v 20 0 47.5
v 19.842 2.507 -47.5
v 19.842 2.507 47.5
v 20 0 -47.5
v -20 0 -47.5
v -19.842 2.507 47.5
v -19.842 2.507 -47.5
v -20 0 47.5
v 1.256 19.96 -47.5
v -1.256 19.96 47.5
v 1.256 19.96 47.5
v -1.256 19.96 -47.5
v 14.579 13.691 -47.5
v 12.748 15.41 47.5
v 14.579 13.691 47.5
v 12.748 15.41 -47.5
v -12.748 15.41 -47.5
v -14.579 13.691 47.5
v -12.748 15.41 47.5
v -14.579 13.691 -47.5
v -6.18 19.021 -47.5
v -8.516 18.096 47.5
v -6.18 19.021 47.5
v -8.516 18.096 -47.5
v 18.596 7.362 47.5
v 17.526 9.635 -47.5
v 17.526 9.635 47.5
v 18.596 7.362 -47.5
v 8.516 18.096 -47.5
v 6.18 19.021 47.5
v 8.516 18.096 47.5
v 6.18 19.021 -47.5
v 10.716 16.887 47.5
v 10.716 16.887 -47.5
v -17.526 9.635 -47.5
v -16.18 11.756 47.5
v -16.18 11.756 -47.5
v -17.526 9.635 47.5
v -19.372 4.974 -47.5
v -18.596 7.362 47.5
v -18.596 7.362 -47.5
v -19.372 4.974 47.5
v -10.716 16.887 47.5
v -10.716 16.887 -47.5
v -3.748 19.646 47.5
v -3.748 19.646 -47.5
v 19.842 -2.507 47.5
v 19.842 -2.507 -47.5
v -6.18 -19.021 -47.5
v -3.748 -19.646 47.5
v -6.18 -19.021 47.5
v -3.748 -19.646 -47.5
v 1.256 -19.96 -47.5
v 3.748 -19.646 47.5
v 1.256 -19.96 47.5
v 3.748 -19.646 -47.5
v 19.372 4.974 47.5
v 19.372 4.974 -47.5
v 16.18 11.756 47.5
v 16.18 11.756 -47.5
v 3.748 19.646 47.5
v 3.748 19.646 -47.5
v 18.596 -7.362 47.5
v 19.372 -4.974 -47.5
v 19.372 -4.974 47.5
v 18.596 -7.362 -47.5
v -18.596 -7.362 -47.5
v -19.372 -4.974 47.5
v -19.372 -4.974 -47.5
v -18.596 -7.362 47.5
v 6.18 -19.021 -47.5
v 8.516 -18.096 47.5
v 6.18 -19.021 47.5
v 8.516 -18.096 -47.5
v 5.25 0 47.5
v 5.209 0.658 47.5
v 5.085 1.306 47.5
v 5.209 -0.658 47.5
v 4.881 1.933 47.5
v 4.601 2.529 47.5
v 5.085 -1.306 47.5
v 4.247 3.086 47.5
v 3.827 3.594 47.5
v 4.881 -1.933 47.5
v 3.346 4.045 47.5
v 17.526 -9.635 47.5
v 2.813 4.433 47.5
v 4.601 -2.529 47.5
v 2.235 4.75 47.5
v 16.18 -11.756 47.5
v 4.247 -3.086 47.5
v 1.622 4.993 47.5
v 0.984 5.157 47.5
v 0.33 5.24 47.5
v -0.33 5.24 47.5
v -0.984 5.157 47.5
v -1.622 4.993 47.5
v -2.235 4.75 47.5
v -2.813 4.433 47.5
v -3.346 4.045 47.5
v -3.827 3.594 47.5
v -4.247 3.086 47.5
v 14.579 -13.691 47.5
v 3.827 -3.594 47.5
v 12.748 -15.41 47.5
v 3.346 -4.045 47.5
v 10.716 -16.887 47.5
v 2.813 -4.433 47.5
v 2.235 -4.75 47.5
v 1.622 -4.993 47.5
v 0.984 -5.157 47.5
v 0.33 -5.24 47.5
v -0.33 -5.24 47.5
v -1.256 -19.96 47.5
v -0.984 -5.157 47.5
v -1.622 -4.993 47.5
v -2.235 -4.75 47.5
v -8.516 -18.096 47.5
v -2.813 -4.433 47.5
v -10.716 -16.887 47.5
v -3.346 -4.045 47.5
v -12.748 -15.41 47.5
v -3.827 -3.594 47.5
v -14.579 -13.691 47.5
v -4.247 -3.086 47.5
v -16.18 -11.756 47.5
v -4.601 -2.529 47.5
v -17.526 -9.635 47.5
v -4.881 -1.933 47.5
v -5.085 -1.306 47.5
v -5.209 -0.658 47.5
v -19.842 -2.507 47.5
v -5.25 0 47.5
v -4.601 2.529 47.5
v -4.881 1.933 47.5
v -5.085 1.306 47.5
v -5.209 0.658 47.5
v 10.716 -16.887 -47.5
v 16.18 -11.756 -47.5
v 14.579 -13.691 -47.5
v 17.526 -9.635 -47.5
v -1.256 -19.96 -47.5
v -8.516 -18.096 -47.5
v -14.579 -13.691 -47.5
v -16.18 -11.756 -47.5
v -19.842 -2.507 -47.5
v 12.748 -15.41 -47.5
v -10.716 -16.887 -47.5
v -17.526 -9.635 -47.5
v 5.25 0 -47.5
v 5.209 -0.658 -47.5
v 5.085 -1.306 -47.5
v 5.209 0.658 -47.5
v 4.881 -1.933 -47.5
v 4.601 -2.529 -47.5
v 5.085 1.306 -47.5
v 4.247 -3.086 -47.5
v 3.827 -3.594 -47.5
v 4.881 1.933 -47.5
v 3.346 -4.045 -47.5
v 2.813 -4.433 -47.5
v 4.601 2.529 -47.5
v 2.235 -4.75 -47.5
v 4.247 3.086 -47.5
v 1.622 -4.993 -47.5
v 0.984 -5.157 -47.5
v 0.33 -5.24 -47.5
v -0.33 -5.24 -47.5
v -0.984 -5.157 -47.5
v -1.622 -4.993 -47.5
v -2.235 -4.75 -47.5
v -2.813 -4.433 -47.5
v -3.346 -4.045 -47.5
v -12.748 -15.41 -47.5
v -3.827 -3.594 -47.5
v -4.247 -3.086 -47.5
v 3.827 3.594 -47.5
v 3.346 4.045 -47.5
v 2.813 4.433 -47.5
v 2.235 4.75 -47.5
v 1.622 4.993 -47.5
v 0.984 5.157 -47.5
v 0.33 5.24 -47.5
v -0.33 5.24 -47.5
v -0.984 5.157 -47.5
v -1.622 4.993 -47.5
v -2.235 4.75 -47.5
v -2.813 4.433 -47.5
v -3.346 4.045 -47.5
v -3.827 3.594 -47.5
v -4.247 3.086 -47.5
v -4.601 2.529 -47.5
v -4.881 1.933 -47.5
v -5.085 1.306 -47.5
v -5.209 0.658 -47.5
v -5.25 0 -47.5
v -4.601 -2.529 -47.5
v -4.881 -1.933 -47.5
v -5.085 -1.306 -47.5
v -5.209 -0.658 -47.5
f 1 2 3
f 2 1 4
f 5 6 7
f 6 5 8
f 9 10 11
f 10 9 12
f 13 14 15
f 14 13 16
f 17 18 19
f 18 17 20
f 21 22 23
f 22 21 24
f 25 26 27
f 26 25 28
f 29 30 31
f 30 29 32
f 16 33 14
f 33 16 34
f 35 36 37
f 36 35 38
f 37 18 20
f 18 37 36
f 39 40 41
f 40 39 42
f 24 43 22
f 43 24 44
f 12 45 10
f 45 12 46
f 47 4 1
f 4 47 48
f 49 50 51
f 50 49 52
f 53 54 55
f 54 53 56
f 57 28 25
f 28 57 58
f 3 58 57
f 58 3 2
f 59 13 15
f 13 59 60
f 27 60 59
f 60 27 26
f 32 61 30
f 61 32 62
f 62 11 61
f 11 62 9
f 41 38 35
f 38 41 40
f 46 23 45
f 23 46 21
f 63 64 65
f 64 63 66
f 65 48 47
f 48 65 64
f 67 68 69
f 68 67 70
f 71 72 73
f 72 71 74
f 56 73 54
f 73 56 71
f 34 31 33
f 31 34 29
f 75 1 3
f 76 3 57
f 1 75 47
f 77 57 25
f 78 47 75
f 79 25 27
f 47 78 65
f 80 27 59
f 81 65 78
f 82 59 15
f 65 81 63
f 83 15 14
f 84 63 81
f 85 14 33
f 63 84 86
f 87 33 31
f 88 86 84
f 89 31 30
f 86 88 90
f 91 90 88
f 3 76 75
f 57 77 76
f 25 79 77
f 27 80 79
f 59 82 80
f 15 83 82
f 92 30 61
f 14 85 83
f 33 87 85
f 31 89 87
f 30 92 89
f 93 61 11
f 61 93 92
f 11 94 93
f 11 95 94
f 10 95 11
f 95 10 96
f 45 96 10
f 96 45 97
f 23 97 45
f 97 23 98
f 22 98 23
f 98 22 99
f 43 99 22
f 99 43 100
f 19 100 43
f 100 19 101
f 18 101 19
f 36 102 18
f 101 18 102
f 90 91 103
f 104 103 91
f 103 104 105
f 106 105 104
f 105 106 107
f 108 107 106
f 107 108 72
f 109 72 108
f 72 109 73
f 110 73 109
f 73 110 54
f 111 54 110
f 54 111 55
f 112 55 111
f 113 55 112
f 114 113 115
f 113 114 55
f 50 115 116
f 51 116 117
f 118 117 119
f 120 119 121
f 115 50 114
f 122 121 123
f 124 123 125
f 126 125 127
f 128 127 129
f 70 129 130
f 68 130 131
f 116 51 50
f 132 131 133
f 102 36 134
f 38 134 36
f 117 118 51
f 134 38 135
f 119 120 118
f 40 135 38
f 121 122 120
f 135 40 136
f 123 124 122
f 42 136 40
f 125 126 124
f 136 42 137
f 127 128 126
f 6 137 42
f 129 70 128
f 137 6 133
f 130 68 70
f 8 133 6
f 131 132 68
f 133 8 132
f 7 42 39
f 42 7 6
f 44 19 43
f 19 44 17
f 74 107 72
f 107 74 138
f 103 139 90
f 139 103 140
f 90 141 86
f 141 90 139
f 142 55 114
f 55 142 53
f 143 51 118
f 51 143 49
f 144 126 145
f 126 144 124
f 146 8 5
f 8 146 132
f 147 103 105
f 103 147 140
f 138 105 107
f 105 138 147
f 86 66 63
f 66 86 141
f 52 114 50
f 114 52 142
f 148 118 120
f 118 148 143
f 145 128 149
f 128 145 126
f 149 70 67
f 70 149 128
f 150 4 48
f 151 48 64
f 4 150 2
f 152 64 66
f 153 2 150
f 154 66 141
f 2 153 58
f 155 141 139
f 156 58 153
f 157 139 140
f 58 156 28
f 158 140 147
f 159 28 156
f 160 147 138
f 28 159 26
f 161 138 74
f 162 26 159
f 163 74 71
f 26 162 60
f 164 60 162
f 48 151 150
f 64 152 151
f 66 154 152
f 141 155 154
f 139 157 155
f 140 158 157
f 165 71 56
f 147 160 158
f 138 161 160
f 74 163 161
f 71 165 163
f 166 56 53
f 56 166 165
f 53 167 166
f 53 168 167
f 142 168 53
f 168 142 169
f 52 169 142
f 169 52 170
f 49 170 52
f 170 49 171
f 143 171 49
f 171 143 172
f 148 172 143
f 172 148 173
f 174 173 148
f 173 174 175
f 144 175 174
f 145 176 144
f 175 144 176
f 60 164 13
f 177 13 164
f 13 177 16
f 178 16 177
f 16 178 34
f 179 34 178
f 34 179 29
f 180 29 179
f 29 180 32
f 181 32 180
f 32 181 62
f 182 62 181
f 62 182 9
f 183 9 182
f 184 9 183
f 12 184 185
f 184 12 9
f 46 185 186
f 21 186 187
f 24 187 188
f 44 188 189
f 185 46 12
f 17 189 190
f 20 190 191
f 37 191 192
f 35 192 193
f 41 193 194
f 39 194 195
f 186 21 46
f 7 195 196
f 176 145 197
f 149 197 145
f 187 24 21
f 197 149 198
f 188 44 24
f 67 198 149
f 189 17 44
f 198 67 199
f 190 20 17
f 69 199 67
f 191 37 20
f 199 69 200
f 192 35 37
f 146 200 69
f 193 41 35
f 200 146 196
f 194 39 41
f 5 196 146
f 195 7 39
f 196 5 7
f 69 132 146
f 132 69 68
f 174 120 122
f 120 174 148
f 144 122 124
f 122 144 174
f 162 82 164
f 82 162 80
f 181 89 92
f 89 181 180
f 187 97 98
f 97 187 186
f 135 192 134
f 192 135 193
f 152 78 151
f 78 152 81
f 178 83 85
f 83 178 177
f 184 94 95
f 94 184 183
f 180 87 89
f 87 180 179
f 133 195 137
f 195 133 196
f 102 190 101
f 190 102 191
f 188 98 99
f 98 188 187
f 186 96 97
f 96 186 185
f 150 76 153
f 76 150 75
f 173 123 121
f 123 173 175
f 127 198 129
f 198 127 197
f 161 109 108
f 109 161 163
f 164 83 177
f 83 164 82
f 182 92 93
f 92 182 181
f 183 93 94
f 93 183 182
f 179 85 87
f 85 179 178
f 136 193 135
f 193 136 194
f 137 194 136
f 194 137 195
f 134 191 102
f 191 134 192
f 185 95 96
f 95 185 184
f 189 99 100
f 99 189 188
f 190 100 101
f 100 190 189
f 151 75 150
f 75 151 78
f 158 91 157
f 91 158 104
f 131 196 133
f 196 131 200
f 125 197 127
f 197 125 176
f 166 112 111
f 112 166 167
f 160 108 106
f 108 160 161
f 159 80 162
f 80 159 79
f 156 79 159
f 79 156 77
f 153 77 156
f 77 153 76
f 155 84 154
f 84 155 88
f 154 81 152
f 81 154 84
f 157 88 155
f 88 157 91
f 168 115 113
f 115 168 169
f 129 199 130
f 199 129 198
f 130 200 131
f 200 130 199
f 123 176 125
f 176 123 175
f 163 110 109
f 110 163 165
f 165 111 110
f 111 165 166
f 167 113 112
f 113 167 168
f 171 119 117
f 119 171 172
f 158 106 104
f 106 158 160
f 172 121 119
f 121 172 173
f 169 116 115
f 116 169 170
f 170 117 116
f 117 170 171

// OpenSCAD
$fn = 50;


difference() {
	union() {
		translate(v = [0, 0, -47.5000000000]) {
			cylinder(h = 95, r = 20.0000000000);
		}
	}
	union() {
		translate(v = [0, 0, -100.0000000000]) {
			cylinder(h = 200, r = 5.2500000000);
		}
	}
}
